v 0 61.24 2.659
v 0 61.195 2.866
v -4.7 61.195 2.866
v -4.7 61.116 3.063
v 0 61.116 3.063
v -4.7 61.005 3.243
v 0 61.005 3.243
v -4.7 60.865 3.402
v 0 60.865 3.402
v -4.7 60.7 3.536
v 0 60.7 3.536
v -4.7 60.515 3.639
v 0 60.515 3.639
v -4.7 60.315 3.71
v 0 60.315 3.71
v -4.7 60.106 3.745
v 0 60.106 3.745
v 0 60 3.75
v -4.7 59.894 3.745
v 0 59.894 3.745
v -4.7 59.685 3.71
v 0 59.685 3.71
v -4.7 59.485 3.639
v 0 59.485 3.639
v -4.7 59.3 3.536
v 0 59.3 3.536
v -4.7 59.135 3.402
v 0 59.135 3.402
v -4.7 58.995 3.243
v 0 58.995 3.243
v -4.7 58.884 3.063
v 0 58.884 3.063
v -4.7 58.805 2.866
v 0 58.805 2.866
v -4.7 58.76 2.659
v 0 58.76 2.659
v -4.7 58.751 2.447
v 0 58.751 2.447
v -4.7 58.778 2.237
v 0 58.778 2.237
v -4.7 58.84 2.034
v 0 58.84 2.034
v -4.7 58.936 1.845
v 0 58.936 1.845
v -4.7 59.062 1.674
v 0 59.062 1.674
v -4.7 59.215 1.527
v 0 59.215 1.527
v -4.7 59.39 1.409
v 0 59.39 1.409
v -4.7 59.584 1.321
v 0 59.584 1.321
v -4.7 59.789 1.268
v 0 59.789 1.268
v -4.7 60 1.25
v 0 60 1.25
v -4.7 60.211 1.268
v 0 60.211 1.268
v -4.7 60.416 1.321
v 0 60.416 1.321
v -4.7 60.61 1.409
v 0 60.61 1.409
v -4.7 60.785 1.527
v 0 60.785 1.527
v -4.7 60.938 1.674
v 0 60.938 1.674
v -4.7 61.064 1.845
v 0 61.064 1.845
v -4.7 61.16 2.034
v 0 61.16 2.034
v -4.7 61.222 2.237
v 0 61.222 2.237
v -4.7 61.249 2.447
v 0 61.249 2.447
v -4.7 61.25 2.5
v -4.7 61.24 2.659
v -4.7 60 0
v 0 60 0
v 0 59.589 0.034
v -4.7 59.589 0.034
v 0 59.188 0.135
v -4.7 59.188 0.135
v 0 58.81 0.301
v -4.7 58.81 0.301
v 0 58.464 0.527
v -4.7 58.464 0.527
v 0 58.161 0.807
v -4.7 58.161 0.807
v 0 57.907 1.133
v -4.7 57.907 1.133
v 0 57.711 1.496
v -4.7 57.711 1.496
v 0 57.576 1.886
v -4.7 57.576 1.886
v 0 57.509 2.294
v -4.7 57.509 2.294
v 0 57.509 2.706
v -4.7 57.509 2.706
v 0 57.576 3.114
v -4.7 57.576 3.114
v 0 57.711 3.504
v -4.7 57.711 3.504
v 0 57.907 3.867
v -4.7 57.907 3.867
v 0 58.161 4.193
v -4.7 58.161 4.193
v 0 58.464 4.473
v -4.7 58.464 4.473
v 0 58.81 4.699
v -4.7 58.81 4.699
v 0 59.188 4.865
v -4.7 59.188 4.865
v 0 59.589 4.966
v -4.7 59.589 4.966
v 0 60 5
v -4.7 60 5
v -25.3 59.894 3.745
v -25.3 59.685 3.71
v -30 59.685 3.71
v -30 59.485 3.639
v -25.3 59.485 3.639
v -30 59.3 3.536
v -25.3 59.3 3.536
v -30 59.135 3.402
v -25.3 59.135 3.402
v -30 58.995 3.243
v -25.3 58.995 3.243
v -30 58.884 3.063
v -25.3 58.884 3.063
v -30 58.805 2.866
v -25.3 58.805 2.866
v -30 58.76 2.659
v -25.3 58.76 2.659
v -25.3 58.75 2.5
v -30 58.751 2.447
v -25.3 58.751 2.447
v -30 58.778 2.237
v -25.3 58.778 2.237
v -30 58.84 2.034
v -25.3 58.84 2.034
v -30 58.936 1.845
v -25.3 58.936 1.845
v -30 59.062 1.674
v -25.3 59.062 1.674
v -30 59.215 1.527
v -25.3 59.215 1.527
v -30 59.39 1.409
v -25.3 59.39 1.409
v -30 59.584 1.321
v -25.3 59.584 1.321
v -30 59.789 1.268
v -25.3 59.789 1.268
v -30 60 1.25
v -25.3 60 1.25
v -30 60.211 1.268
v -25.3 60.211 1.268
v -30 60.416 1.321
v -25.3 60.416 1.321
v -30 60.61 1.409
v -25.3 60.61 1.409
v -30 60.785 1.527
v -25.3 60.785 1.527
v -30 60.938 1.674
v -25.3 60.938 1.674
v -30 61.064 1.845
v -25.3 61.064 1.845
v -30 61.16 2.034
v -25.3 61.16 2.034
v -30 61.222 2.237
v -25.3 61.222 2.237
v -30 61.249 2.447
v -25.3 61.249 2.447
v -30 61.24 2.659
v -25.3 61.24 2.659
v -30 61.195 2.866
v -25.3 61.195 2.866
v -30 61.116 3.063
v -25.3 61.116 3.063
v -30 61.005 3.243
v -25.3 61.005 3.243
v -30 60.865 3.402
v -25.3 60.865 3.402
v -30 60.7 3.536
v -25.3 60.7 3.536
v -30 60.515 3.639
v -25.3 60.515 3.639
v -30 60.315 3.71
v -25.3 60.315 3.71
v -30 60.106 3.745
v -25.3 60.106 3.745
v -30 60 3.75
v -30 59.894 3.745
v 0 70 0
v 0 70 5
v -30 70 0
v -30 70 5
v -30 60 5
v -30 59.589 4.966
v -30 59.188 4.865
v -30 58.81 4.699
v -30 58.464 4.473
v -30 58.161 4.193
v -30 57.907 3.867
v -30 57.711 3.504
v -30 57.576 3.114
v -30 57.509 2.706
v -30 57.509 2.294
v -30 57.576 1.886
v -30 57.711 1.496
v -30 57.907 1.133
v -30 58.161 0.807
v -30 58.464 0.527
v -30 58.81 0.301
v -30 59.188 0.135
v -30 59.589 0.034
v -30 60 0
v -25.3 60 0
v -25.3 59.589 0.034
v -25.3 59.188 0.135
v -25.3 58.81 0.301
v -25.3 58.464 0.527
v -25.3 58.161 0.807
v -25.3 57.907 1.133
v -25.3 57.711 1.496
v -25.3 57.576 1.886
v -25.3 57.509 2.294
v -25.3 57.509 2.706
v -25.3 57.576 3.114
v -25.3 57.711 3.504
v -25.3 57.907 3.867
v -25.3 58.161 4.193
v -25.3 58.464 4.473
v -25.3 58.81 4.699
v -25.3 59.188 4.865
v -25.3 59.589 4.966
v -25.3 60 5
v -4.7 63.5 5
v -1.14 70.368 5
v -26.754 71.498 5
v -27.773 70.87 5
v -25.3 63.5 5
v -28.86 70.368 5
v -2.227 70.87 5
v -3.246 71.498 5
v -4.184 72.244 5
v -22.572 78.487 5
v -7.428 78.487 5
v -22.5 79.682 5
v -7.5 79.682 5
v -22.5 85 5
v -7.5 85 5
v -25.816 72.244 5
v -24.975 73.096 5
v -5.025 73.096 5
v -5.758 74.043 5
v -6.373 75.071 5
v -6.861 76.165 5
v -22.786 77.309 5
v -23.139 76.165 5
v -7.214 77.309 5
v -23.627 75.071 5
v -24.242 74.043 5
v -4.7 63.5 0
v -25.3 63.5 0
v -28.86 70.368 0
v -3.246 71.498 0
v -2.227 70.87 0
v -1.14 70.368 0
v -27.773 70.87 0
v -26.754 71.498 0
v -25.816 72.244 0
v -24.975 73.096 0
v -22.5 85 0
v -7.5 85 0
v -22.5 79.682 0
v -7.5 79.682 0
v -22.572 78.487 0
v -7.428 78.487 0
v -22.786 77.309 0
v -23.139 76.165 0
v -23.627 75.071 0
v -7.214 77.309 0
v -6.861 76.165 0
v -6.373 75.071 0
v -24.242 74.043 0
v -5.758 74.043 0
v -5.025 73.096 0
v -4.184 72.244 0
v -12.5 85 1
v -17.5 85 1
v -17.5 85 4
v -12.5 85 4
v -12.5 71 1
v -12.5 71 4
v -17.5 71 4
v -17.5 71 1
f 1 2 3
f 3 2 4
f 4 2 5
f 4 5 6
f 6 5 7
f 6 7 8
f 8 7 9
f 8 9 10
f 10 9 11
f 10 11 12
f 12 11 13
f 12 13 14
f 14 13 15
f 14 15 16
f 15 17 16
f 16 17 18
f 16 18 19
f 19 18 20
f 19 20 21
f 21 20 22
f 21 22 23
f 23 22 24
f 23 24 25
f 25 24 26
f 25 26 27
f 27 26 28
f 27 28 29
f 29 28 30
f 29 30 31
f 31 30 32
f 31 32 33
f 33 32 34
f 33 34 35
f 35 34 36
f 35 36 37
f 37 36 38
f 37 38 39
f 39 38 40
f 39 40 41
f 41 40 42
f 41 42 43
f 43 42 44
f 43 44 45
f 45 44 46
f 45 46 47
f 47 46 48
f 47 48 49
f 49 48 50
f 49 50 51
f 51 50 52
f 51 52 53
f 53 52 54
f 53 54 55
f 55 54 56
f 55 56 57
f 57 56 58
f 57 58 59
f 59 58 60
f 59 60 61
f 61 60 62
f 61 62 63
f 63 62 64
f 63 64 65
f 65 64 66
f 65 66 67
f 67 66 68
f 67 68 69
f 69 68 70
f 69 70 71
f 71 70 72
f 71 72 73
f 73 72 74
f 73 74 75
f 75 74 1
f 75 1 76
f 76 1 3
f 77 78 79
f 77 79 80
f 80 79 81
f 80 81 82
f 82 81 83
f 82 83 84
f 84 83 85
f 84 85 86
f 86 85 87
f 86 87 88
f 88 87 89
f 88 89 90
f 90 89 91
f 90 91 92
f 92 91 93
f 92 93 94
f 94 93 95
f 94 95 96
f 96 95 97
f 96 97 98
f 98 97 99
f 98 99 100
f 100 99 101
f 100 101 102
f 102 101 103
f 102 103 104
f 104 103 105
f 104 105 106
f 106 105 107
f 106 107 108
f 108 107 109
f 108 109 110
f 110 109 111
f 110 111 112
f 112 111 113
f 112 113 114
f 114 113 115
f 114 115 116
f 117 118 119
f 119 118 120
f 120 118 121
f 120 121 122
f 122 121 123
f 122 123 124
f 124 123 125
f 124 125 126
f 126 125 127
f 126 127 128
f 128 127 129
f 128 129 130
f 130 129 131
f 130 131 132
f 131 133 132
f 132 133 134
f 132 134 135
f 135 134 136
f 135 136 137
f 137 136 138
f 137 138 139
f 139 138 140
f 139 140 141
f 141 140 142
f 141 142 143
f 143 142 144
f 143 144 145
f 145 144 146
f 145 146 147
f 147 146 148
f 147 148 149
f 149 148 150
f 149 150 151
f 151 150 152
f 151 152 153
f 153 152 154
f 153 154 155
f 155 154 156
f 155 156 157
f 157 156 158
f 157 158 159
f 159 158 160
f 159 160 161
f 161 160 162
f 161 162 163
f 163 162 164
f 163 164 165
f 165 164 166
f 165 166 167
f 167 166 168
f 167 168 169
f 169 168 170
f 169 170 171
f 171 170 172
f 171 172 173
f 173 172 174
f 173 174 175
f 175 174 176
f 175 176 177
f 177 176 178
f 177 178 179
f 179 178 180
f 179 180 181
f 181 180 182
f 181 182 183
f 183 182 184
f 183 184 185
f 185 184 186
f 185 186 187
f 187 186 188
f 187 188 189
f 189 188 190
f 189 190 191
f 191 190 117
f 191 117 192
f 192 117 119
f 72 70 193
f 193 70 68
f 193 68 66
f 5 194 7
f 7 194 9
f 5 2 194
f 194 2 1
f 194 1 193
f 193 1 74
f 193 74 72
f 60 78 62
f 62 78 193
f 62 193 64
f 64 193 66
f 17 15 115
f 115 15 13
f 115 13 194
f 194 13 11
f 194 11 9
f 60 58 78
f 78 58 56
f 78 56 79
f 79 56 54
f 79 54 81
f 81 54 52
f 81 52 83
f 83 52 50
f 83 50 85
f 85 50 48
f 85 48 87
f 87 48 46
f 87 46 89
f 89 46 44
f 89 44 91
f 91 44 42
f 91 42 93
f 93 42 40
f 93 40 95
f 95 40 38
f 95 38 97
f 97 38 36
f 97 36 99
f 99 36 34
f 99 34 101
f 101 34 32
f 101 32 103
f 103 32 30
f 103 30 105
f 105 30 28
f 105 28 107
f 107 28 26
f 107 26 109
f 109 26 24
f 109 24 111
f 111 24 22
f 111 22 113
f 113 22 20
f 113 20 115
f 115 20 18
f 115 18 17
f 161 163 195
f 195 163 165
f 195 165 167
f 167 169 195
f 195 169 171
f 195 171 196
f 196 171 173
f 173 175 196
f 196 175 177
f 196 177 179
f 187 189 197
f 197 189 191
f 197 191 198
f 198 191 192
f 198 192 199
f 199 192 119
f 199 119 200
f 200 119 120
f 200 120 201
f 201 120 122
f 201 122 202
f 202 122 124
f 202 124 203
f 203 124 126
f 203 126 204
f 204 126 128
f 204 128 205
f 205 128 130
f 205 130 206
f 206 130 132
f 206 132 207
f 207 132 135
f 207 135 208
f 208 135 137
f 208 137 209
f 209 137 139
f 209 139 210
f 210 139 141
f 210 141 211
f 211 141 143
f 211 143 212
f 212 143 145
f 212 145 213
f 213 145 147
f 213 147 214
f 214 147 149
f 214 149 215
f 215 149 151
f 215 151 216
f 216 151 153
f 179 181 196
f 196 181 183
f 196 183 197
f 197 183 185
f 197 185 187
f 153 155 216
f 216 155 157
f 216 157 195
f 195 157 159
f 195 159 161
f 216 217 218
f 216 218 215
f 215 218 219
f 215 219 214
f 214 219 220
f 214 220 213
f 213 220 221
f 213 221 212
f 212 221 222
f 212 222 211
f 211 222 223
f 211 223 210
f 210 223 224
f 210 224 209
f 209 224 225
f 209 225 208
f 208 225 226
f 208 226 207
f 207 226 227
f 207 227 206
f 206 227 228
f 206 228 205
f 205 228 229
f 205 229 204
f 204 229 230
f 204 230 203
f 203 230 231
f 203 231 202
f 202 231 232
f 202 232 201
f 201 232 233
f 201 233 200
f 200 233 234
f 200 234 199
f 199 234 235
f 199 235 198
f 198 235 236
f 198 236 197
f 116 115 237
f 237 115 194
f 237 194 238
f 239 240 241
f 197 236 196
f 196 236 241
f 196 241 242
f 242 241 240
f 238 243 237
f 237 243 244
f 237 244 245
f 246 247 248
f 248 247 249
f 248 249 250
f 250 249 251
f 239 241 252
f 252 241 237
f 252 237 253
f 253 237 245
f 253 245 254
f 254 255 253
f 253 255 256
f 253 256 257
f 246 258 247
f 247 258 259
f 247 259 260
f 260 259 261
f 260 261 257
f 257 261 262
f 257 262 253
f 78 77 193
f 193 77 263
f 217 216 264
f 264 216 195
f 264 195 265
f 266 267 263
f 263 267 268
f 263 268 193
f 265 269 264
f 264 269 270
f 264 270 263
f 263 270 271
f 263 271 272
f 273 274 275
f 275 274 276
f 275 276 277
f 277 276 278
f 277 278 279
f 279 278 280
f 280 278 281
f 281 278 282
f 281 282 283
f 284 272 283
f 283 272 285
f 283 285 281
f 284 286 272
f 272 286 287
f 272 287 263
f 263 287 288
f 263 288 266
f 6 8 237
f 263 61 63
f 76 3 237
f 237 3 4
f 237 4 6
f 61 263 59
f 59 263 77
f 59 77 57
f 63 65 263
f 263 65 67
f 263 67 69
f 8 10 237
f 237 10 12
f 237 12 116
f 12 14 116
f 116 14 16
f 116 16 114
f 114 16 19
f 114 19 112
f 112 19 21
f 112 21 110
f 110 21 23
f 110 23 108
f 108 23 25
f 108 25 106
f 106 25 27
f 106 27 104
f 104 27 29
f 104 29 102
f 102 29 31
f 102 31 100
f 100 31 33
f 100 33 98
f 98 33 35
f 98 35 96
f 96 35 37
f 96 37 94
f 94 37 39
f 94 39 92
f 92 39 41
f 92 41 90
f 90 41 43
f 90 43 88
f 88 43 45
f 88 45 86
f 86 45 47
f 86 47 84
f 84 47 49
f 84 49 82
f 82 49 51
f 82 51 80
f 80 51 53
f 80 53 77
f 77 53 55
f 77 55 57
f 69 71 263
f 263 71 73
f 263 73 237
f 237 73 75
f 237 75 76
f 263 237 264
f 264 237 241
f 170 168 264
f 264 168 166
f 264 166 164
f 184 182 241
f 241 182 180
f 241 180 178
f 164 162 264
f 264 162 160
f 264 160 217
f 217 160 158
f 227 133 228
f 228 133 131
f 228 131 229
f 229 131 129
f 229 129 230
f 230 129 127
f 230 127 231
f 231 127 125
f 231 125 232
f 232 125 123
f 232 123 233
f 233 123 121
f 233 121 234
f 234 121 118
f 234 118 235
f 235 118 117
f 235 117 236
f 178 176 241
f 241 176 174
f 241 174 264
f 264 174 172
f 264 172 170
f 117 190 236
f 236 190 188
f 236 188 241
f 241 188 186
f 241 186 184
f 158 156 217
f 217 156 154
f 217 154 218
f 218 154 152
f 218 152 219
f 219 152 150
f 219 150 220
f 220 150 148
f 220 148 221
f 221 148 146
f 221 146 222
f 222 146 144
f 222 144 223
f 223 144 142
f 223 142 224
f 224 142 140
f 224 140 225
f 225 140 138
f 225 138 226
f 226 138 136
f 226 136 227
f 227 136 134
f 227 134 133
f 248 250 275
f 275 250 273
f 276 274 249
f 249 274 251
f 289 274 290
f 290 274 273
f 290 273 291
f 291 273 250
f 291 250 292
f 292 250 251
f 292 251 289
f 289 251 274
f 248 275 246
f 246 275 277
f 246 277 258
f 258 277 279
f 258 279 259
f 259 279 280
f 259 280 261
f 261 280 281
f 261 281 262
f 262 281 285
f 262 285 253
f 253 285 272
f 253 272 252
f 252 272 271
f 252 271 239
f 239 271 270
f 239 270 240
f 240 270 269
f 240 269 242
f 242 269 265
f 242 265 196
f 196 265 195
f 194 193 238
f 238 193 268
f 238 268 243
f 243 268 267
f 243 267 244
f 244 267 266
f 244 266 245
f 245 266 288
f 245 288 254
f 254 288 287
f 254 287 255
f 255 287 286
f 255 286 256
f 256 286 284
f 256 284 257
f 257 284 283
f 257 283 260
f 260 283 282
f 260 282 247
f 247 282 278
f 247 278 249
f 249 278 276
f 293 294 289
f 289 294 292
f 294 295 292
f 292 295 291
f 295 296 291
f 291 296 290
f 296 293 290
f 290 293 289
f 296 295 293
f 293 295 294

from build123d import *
from build123d.topology import SkipClean

# Parameters (mm, degrees)
SKETCH1_W           = 20
SKETCH1_H           = 60
BOSS_EXTRUDE1_DEPTH = 5
SKETCH2_R           = 2.5
SKETCH2_R_2         = 1.25
BOSS_EXTRUDE2_DEPTH = 20
CUT_EXTRUDE1_START  = -29
SKETCH3_R           = 1.25
CUT_EXTRUDE1_DEPTH  = 29
SKETCH4_R           = 2.5
SKETCH4_R_2         = 1.25
BOSS_EXTRUDE3_DEPTH = 20
CUT_EXTRUDE2_START  = -29
SKETCH5_R           = 1.25
CUT_EXTRUDE2_DEPTH  = 29
SKETCH6_R           = 1.25
BOSS_EXTRUDE4_DEPTH = 30
SKETCH7_W           = 20.6
SKETCH7_H           = 7
CUT_EXTRUDE3_DEPTH  = 30
SKETCH8_W           = 60.511546569
SKETCH8_H           = 78.563917263
CUT_EXTRUDE4_DEPTH  = 41
SKETCH13_W          = 15
SKETCH13_H          = 15
BOSS_EXTRUDE6_DEPTH = 5
FILLET1_R           = 10
SKETCH14_W          = 5
SKETCH14_H          = 3
CUT_EXTRUDE6_DEPTH  = 14


with BuildPart() as part:
    # Sketch1 → Boss-Extrude1 (new body)
    with BuildSketch(Plane.XY):
        with Locations((10, 30)):
            Rectangle(SKETCH1_W, SKETCH1_H)
    extrude(amount=BOSS_EXTRUDE1_DEPTH)

    # Sketch2 → Boss-Extrude2 (add)
    with BuildSketch(Plane(origin=(20, 0, 0), x_dir=(0, 0, -1), z_dir=(1, 0, 0))):
        with Locations((-2.5, 60)):
            Circle(SKETCH2_R)
        with Locations((-2.5, 60)):
            Circle(SKETCH2_R_2, mode=Mode.SUBTRACT)
    extrude(amount=-BOSS_EXTRUDE2_DEPTH)

    # Sketch3 → Cut-Extrude1 (cut)
    with SkipClean():  # the faces are left unmerged after this step: merging them gives an invalid solid
        with BuildSketch(Plane.ZY.offset(CUT_EXTRUDE1_START)):
            with Locations(Location((2.5, 60, 0), (0, 0, 180))):
                Circle(SKETCH3_R)
        extrude(amount=CUT_EXTRUDE1_DEPTH, mode=Mode.SUBTRACT)

    # Sketch4 → Boss-Extrude3 (add)
    with BuildSketch(Plane.ZY):
        with Locations((2.5, 0)):
            Circle(SKETCH4_R)
        with Locations((2.5, 0)):
            Circle(SKETCH4_R_2, mode=Mode.SUBTRACT)
    extrude(amount=-BOSS_EXTRUDE3_DEPTH)

    # Sketch5 → Cut-Extrude2 (cut)
    with SkipClean():  # the faces are left unmerged after this step: merging them gives an invalid solid
        with BuildSketch(Plane(origin=(20, 0, 0), x_dir=(0, 0, -1), z_dir=(1, 0, 0)).offset(CUT_EXTRUDE2_START)):
            with Locations(Location((-2.5, 0, 0), (0, 0, 180))):
                Circle(SKETCH5_R)
        extrude(amount=CUT_EXTRUDE2_DEPTH, mode=Mode.SUBTRACT)

    # Sketch6 → Boss-Extrude4 (add)
    with SkipClean():  # the faces are left unmerged after this step: merging them gives an invalid solid
        with BuildSketch(Plane.ZY):
            with BuildLine():
                Line((5, 60), (5, 70))
                Line((5, 70), (0, 70))
                Line((0, 70), (0, 60))
                ThreePointArc((0, 60), (2.5, 57.5), (5, 60))
            make_face()
            with Locations(Location((2.5, 60, 0), (0, 0, 180))):
                Circle(SKETCH6_R, mode=Mode.SUBTRACT)
        extrude(amount=BOSS_EXTRUDE4_DEPTH)

    # Sketch7 → Cut-Extrude3 (cut)
    with SkipClean():  # the faces are left unmerged after this step: merging them gives an invalid solid
        with BuildSketch(Plane(origin=(0, 0, 0), x_dir=(-1, 0, 0), z_dir=(0, 0, -1))):
            with Locations((15, 60)):
                Rectangle(SKETCH7_W, SKETCH7_H)
        extrude(amount=-CUT_EXTRUDE3_DEPTH, mode=Mode.SUBTRACT)

    # Sketch8 → Cut-Extrude4 (cut)
    with BuildSketch(Plane.ZY):
        with Locations((2.066743104, 31.078249137)):
            Rectangle(SKETCH8_W, SKETCH8_H)
    extrude(amount=-CUT_EXTRUDE4_DEPTH, mode=Mode.SUBTRACT)

    # Sketch13 → Boss-Extrude6 (add)
    with BuildSketch(Plane(origin=(0, 0, 0), x_dir=(-1, 0, 0), z_dir=(0, 0, -1))):
        with Locations((15, 77.5)):
            Rectangle(SKETCH13_W, SKETCH13_H)
    extrude(amount=-BOSS_EXTRUDE6_DEPTH)

    # Fillet1
    # the kernel refuses this fillet: 10 mm, written as the material it adds along each edge
    with BuildSketch(Plane(origin=(-22.5, 70, 0), x_dir=(-1, 0, 0), z_dir=(0, 0, 1))) as fillet1_piece_1:
        with BuildLine():
            CenterArc((10, -9.682458366), FILLET1_R, 104.477512186, 75.522487814)
            Line((0, -9.682458366), (-0.2, -9.682458366))
            Line((-0.2, -9.682458366), (-0.2, 0))
            Line((-0.2, 0), (0, 0.2))
            ThreePointArc((0, 0.2), (3.75, 0.2), (7.45, 0.193649167))
            Line((7.45, 0.193649167), (7.5, 0))
        make_face()
    extrude(amount=5)
    with BuildSketch(Plane(origin=(-7.5, 70, 0), x_dir=(1, 0, 0), z_dir=(0, 0, 1))) as fillet1_piece_2:
        with BuildLine():
            CenterArc((10, 9.682458366), FILLET1_R, 180, 75.522487814)
            Line((0, 9.682458366), (-0.2, 9.682458366))
            Line((-0.2, 9.682458366), (-0.2, 0))
            Line((-0.2, 0), (0, -0.2))
            ThreePointArc((0, -0.2), (3.75, -0.2), (7.45, -0.193649167))
            Line((7.45, -0.193649167), (7.5, 0))
        make_face()
    extrude(amount=5)

    # Sketch14 → Cut-Extrude6 (cut)
    with BuildSketch(Plane(origin=(0, 85, 0), x_dir=(1, 0, 0), z_dir=(0, 1, 0))):
        with Locations((-15, -2.5)):
            Rectangle(SKETCH14_W, SKETCH14_H)
    extrude(amount=-CUT_EXTRUDE6_DEPTH, mode=Mode.SUBTRACT)


solid = part.part
